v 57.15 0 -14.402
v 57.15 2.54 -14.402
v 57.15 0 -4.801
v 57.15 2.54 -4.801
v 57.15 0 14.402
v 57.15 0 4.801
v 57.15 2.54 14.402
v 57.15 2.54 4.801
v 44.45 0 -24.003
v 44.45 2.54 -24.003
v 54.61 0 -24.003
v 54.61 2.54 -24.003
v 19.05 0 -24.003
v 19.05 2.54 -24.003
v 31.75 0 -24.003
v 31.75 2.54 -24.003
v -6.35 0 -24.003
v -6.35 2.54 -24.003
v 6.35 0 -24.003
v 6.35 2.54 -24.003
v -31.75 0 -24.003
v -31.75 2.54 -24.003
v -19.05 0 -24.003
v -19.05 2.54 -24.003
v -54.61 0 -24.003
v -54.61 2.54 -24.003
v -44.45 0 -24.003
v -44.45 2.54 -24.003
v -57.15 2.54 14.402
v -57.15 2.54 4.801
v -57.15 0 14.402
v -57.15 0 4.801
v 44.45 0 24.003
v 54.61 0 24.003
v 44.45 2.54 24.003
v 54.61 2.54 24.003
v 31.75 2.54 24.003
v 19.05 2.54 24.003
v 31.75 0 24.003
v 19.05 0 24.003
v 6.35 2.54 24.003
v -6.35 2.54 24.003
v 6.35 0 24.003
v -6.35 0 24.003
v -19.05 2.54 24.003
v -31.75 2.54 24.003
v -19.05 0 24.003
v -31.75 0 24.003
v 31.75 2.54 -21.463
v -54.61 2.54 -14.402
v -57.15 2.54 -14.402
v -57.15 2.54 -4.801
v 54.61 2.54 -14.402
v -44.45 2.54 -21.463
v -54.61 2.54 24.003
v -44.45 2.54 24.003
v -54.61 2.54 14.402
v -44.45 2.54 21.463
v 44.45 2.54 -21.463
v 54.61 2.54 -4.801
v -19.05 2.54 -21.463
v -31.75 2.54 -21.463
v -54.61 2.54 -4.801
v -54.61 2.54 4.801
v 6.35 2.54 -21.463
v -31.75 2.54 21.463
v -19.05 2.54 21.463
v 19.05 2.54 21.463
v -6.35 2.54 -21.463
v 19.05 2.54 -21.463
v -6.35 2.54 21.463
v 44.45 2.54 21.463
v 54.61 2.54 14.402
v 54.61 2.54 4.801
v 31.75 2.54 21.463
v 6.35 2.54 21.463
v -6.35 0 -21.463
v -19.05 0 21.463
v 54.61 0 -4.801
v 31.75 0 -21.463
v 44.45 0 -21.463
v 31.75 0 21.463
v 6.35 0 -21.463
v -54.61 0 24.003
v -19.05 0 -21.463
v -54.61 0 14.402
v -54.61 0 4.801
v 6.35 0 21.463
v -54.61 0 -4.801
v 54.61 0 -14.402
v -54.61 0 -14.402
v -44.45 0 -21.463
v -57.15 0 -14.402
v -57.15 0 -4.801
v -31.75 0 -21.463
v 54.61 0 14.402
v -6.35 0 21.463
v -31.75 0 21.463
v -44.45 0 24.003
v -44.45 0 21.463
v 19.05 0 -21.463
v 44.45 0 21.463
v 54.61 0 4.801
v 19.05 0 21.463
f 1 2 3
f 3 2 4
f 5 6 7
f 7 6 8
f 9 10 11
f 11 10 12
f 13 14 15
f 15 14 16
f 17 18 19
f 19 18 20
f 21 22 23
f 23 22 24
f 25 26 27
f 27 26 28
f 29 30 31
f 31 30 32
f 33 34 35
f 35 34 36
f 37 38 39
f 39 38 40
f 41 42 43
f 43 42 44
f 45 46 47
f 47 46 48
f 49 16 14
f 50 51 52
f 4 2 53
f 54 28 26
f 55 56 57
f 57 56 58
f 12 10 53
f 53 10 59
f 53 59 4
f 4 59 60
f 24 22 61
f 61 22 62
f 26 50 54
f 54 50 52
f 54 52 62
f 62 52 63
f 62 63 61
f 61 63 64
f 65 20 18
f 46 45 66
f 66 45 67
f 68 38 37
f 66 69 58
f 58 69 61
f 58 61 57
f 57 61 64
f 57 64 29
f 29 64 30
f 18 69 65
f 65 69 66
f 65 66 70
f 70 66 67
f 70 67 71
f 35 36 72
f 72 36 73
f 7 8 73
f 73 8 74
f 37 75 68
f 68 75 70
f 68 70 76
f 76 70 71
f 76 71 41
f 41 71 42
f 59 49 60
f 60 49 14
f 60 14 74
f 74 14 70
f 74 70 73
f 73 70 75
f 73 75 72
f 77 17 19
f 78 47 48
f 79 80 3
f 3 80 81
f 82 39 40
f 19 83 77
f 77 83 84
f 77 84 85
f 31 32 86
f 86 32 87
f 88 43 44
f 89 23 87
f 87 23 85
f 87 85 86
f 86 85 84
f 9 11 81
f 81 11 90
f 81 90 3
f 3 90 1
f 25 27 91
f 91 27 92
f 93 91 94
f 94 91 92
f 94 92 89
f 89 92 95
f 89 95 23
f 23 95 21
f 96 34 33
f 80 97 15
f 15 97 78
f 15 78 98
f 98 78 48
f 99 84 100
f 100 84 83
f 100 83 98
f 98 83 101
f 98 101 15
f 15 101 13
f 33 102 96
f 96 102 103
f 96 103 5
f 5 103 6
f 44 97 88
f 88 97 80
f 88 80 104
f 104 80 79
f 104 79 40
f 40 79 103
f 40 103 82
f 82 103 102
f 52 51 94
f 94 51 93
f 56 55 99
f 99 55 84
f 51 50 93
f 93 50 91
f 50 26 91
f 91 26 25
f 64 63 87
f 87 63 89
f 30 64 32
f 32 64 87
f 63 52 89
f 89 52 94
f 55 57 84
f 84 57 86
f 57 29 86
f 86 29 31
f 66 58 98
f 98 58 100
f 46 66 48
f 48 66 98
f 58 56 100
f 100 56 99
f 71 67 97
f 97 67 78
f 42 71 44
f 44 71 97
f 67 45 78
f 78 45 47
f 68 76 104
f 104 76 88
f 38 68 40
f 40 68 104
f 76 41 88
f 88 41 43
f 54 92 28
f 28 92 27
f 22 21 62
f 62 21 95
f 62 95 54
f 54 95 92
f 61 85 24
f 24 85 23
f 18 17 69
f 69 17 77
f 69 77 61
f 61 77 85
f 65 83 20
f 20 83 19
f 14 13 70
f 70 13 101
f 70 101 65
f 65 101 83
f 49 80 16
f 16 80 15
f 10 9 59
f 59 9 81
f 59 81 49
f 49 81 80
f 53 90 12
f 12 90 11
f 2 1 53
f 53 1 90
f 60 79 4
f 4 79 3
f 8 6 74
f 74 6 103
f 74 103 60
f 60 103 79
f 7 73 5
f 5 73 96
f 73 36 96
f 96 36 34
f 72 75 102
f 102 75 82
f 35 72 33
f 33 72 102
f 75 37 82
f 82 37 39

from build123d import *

# Parameters (mm, degrees)
SKETCH1_W           = 114.3
SKETCH1_H           = 48.006
BOSS_EXTRUDE1_DEPTH = 2.54
CUT_EXTRUDE2_REACH  = 64.038
SKETCH2_W           = 2.54
SKETCH2_H           = 9.6012
SKETCH2_W_2         = 12.7
SKETCH2_H_2         = 2.54


with BuildPart() as part:
    # Sketch1 → Boss-Extrude1 (new body)
    with BuildSketch(Plane(origin=(0, 0, 0), x_dir=(1, 0, 0), z_dir=(0, 1, 0))):
        Rectangle(SKETCH1_W, SKETCH1_H)
    extrude(amount=BOSS_EXTRUDE1_DEPTH)

    # Sketch2 → Cut-Extrude2 (cut, up to next)
    with BuildSketch(Plane(origin=(0, 2.54, 0), x_dir=(1, 0, 0), z_dir=(0, 1, 0)), mode=Mode.PRIVATE) as cut_extrude2_sk1:
        with Locations((-55.88, 19.2024)):
            Rectangle(SKETCH2_W, SKETCH2_H)
    cut_extrude2_tool1 = extrude(cut_extrude2_sk1.sketch, amount=-CUT_EXTRUDE2_REACH, mode=Mode.PRIVATE) & part.part
    # Sketch2 → Cut-Extrude2 (cut, up to next)
    with BuildSketch(Plane(origin=(0, 2.54, 0), x_dir=(1, 0, 0), z_dir=(0, 1, 0)), mode=Mode.PRIVATE) as cut_extrude2_sk2:
        with Locations((-38.1, 22.733)):
            Rectangle(SKETCH2_W_2, SKETCH2_H_2)
    cut_extrude2_tool2 = extrude(cut_extrude2_sk2.sketch, amount=-CUT_EXTRUDE2_REACH, mode=Mode.PRIVATE) & part.part
    # Sketch2 → Cut-Extrude2 (cut, up to next)
    with BuildSketch(Plane(origin=(0, 2.54, 0), x_dir=(1, 0, 0), z_dir=(0, 1, 0)), mode=Mode.PRIVATE) as cut_extrude2_sk3:
        with Locations((-12.7, 22.733)):
            Rectangle(SKETCH2_W_2, SKETCH2_H_2)
    cut_extrude2_tool3 = extrude(cut_extrude2_sk3.sketch, amount=-CUT_EXTRUDE2_REACH, mode=Mode.PRIVATE) & part.part
    # Sketch2 → Cut-Extrude2 (cut, up to next)
    with BuildSketch(Plane(origin=(0, 2.54, 0), x_dir=(1, 0, 0), z_dir=(0, 1, 0)), mode=Mode.PRIVATE) as cut_extrude2_sk4:
        with Locations((12.7, 22.733)):
            Rectangle(SKETCH2_W_2, SKETCH2_H_2)
    cut_extrude2_tool4 = extrude(cut_extrude2_sk4.sketch, amount=-CUT_EXTRUDE2_REACH, mode=Mode.PRIVATE) & part.part
    # Sketch2 → Cut-Extrude2 (cut, up to next)
    with BuildSketch(Plane(origin=(0, 2.54, 0), x_dir=(1, 0, 0), z_dir=(0, 1, 0)), mode=Mode.PRIVATE) as cut_extrude2_sk5:
        with Locations((38.1, 22.733)):
            Rectangle(SKETCH2_W_2, SKETCH2_H_2)
    cut_extrude2_tool5 = extrude(cut_extrude2_sk5.sketch, amount=-CUT_EXTRUDE2_REACH, mode=Mode.PRIVATE) & part.part
    # Sketch2 → Cut-Extrude2 (cut, up to next)
    with BuildSketch(Plane(origin=(0, 2.54, 0), x_dir=(1, 0, 0), z_dir=(0, 1, 0)), mode=Mode.PRIVATE) as cut_extrude2_sk6:
        with Locations((55.88, 19.2024)):
            Rectangle(SKETCH2_W, SKETCH2_H)
    cut_extrude2_tool6 = extrude(cut_extrude2_sk6.sketch, amount=-CUT_EXTRUDE2_REACH, mode=Mode.PRIVATE) & part.part
    # Sketch2 → Cut-Extrude2 (cut, up to next)
    with BuildSketch(Plane(origin=(0, 2.54, 0), x_dir=(1, 0, 0), z_dir=(0, 1, 0)), mode=Mode.PRIVATE) as cut_extrude2_sk7:
        with Locations((55.88, 0)):
            Rectangle(SKETCH2_W, SKETCH2_H)
    cut_extrude2_tool7 = extrude(cut_extrude2_sk7.sketch, amount=-CUT_EXTRUDE2_REACH, mode=Mode.PRIVATE) & part.part
    # Sketch2 → Cut-Extrude2 (cut, up to next)
    with BuildSketch(Plane(origin=(0, 2.54, 0), x_dir=(1, 0, 0), z_dir=(0, 1, 0)), mode=Mode.PRIVATE) as cut_extrude2_sk8:
        with Locations((55.88, -19.2024)):
            Rectangle(SKETCH2_W, SKETCH2_H)
    cut_extrude2_tool8 = extrude(cut_extrude2_sk8.sketch, amount=-CUT_EXTRUDE2_REACH, mode=Mode.PRIVATE) & part.part
    # Sketch2 → Cut-Extrude2 (cut, up to next)
    with BuildSketch(Plane(origin=(0, 2.54, 0), x_dir=(1, 0, 0), z_dir=(0, 1, 0)), mode=Mode.PRIVATE) as cut_extrude2_sk9:
        with Locations((38.1, -22.733)):
            Rectangle(SKETCH2_W_2, SKETCH2_H_2)
    cut_extrude2_tool9 = extrude(cut_extrude2_sk9.sketch, amount=-CUT_EXTRUDE2_REACH, mode=Mode.PRIVATE) & part.part
    # Sketch2 → Cut-Extrude2 (cut, up to next)
    with BuildSketch(Plane(origin=(0, 2.54, 0), x_dir=(1, 0, 0), z_dir=(0, 1, 0)), mode=Mode.PRIVATE) as cut_extrude2_sk10:
        with Locations((12.7, -22.733)):
            Rectangle(SKETCH2_W_2, SKETCH2_H_2)
    cut_extrude2_tool10 = extrude(cut_extrude2_sk10.sketch, amount=-CUT_EXTRUDE2_REACH, mode=Mode.PRIVATE) & part.part
    # Sketch2 → Cut-Extrude2 (cut, up to next)
    with BuildSketch(Plane(origin=(0, 2.54, 0), x_dir=(1, 0, 0), z_dir=(0, 1, 0)), mode=Mode.PRIVATE) as cut_extrude2_sk11:
        with Locations((-12.7, -22.733)):
            Rectangle(SKETCH2_W_2, SKETCH2_H_2)
    cut_extrude2_tool11 = extrude(cut_extrude2_sk11.sketch, amount=-CUT_EXTRUDE2_REACH, mode=Mode.PRIVATE) & part.part
    # Sketch2 → Cut-Extrude2 (cut, up to next)
    with BuildSketch(Plane(origin=(0, 2.54, 0), x_dir=(1, 0, 0), z_dir=(0, 1, 0)), mode=Mode.PRIVATE) as cut_extrude2_sk12:
        with Locations((-38.1, -22.733)):
            Rectangle(SKETCH2_W_2, SKETCH2_H_2)
    cut_extrude2_tool12 = extrude(cut_extrude2_sk12.sketch, amount=-CUT_EXTRUDE2_REACH, mode=Mode.PRIVATE) & part.part
    # Sketch2 → Cut-Extrude2 (cut, up to next)
    with BuildSketch(Plane(origin=(0, 2.54, 0), x_dir=(1, 0, 0), z_dir=(0, 1, 0)), mode=Mode.PRIVATE) as cut_extrude2_sk13:
        with Locations((-55.88, -19.2024)):
            Rectangle(SKETCH2_W, SKETCH2_H)
    cut_extrude2_tool13 = extrude(cut_extrude2_sk13.sketch, amount=-CUT_EXTRUDE2_REACH, mode=Mode.PRIVATE) & part.part
    # Sketch2 → Cut-Extrude2 (cut, up to next)
    with BuildSketch(Plane(origin=(0, 2.54, 0), x_dir=(1, 0, 0), z_dir=(0, 1, 0)), mode=Mode.PRIVATE) as cut_extrude2_sk14:
        with Locations((-55.88, 0)):
            Rectangle(SKETCH2_W, SKETCH2_H)
    cut_extrude2_tool14 = extrude(cut_extrude2_sk14.sketch, amount=-CUT_EXTRUDE2_REACH, mode=Mode.PRIVATE) & part.part
    add(cut_extrude2_tool1.solids().sort_by_distance((-55.88, 2.54, -19.2024))[0], mode=Mode.SUBTRACT)
    add(cut_extrude2_tool2.solids().sort_by_distance((-38.1, 2.54, -22.733))[0], mode=Mode.SUBTRACT)
    add(cut_extrude2_tool3.solids().sort_by_distance((-12.7, 2.54, -22.733))[0], mode=Mode.SUBTRACT)
    add(cut_extrude2_tool4.solids().sort_by_distance((12.7, 2.54, -22.733))[0], mode=Mode.SUBTRACT)
    add(cut_extrude2_tool5.solids().sort_by_distance((38.1, 2.54, -22.733))[0], mode=Mode.SUBTRACT)
    add(cut_extrude2_tool6.solids().sort_by_distance((55.88, 2.54, -19.2024))[0], mode=Mode.SUBTRACT)
    add(cut_extrude2_tool7.solids().sort_by_distance((55.88, 2.54, 0))[0], mode=Mode.SUBTRACT)
    add(cut_extrude2_tool8.solids().sort_by_distance((55.88, 2.54, 19.2024))[0], mode=Mode.SUBTRACT)
    add(cut_extrude2_tool9.solids().sort_by_distance((38.1, 2.54, 22.733))[0], mode=Mode.SUBTRACT)
    add(cut_extrude2_tool10.solids().sort_by_distance((12.7, 2.54, 22.733))[0], mode=Mode.SUBTRACT)
    add(cut_extrude2_tool11.solids().sort_by_distance((-12.7, 2.54, 22.733))[0], mode=Mode.SUBTRACT)
    add(cut_extrude2_tool12.solids().sort_by_distance((-38.1, 2.54, 22.733))[0], mode=Mode.SUBTRACT)
    add(cut_extrude2_tool13.solids().sort_by_distance((-55.88, 2.54, 19.2024))[0], mode=Mode.SUBTRACT)
    add(cut_extrude2_tool14.solids().sort_by_distance((-55.88, 2.54, 0))[0], mode=Mode.SUBTRACT)


solid = part.part
